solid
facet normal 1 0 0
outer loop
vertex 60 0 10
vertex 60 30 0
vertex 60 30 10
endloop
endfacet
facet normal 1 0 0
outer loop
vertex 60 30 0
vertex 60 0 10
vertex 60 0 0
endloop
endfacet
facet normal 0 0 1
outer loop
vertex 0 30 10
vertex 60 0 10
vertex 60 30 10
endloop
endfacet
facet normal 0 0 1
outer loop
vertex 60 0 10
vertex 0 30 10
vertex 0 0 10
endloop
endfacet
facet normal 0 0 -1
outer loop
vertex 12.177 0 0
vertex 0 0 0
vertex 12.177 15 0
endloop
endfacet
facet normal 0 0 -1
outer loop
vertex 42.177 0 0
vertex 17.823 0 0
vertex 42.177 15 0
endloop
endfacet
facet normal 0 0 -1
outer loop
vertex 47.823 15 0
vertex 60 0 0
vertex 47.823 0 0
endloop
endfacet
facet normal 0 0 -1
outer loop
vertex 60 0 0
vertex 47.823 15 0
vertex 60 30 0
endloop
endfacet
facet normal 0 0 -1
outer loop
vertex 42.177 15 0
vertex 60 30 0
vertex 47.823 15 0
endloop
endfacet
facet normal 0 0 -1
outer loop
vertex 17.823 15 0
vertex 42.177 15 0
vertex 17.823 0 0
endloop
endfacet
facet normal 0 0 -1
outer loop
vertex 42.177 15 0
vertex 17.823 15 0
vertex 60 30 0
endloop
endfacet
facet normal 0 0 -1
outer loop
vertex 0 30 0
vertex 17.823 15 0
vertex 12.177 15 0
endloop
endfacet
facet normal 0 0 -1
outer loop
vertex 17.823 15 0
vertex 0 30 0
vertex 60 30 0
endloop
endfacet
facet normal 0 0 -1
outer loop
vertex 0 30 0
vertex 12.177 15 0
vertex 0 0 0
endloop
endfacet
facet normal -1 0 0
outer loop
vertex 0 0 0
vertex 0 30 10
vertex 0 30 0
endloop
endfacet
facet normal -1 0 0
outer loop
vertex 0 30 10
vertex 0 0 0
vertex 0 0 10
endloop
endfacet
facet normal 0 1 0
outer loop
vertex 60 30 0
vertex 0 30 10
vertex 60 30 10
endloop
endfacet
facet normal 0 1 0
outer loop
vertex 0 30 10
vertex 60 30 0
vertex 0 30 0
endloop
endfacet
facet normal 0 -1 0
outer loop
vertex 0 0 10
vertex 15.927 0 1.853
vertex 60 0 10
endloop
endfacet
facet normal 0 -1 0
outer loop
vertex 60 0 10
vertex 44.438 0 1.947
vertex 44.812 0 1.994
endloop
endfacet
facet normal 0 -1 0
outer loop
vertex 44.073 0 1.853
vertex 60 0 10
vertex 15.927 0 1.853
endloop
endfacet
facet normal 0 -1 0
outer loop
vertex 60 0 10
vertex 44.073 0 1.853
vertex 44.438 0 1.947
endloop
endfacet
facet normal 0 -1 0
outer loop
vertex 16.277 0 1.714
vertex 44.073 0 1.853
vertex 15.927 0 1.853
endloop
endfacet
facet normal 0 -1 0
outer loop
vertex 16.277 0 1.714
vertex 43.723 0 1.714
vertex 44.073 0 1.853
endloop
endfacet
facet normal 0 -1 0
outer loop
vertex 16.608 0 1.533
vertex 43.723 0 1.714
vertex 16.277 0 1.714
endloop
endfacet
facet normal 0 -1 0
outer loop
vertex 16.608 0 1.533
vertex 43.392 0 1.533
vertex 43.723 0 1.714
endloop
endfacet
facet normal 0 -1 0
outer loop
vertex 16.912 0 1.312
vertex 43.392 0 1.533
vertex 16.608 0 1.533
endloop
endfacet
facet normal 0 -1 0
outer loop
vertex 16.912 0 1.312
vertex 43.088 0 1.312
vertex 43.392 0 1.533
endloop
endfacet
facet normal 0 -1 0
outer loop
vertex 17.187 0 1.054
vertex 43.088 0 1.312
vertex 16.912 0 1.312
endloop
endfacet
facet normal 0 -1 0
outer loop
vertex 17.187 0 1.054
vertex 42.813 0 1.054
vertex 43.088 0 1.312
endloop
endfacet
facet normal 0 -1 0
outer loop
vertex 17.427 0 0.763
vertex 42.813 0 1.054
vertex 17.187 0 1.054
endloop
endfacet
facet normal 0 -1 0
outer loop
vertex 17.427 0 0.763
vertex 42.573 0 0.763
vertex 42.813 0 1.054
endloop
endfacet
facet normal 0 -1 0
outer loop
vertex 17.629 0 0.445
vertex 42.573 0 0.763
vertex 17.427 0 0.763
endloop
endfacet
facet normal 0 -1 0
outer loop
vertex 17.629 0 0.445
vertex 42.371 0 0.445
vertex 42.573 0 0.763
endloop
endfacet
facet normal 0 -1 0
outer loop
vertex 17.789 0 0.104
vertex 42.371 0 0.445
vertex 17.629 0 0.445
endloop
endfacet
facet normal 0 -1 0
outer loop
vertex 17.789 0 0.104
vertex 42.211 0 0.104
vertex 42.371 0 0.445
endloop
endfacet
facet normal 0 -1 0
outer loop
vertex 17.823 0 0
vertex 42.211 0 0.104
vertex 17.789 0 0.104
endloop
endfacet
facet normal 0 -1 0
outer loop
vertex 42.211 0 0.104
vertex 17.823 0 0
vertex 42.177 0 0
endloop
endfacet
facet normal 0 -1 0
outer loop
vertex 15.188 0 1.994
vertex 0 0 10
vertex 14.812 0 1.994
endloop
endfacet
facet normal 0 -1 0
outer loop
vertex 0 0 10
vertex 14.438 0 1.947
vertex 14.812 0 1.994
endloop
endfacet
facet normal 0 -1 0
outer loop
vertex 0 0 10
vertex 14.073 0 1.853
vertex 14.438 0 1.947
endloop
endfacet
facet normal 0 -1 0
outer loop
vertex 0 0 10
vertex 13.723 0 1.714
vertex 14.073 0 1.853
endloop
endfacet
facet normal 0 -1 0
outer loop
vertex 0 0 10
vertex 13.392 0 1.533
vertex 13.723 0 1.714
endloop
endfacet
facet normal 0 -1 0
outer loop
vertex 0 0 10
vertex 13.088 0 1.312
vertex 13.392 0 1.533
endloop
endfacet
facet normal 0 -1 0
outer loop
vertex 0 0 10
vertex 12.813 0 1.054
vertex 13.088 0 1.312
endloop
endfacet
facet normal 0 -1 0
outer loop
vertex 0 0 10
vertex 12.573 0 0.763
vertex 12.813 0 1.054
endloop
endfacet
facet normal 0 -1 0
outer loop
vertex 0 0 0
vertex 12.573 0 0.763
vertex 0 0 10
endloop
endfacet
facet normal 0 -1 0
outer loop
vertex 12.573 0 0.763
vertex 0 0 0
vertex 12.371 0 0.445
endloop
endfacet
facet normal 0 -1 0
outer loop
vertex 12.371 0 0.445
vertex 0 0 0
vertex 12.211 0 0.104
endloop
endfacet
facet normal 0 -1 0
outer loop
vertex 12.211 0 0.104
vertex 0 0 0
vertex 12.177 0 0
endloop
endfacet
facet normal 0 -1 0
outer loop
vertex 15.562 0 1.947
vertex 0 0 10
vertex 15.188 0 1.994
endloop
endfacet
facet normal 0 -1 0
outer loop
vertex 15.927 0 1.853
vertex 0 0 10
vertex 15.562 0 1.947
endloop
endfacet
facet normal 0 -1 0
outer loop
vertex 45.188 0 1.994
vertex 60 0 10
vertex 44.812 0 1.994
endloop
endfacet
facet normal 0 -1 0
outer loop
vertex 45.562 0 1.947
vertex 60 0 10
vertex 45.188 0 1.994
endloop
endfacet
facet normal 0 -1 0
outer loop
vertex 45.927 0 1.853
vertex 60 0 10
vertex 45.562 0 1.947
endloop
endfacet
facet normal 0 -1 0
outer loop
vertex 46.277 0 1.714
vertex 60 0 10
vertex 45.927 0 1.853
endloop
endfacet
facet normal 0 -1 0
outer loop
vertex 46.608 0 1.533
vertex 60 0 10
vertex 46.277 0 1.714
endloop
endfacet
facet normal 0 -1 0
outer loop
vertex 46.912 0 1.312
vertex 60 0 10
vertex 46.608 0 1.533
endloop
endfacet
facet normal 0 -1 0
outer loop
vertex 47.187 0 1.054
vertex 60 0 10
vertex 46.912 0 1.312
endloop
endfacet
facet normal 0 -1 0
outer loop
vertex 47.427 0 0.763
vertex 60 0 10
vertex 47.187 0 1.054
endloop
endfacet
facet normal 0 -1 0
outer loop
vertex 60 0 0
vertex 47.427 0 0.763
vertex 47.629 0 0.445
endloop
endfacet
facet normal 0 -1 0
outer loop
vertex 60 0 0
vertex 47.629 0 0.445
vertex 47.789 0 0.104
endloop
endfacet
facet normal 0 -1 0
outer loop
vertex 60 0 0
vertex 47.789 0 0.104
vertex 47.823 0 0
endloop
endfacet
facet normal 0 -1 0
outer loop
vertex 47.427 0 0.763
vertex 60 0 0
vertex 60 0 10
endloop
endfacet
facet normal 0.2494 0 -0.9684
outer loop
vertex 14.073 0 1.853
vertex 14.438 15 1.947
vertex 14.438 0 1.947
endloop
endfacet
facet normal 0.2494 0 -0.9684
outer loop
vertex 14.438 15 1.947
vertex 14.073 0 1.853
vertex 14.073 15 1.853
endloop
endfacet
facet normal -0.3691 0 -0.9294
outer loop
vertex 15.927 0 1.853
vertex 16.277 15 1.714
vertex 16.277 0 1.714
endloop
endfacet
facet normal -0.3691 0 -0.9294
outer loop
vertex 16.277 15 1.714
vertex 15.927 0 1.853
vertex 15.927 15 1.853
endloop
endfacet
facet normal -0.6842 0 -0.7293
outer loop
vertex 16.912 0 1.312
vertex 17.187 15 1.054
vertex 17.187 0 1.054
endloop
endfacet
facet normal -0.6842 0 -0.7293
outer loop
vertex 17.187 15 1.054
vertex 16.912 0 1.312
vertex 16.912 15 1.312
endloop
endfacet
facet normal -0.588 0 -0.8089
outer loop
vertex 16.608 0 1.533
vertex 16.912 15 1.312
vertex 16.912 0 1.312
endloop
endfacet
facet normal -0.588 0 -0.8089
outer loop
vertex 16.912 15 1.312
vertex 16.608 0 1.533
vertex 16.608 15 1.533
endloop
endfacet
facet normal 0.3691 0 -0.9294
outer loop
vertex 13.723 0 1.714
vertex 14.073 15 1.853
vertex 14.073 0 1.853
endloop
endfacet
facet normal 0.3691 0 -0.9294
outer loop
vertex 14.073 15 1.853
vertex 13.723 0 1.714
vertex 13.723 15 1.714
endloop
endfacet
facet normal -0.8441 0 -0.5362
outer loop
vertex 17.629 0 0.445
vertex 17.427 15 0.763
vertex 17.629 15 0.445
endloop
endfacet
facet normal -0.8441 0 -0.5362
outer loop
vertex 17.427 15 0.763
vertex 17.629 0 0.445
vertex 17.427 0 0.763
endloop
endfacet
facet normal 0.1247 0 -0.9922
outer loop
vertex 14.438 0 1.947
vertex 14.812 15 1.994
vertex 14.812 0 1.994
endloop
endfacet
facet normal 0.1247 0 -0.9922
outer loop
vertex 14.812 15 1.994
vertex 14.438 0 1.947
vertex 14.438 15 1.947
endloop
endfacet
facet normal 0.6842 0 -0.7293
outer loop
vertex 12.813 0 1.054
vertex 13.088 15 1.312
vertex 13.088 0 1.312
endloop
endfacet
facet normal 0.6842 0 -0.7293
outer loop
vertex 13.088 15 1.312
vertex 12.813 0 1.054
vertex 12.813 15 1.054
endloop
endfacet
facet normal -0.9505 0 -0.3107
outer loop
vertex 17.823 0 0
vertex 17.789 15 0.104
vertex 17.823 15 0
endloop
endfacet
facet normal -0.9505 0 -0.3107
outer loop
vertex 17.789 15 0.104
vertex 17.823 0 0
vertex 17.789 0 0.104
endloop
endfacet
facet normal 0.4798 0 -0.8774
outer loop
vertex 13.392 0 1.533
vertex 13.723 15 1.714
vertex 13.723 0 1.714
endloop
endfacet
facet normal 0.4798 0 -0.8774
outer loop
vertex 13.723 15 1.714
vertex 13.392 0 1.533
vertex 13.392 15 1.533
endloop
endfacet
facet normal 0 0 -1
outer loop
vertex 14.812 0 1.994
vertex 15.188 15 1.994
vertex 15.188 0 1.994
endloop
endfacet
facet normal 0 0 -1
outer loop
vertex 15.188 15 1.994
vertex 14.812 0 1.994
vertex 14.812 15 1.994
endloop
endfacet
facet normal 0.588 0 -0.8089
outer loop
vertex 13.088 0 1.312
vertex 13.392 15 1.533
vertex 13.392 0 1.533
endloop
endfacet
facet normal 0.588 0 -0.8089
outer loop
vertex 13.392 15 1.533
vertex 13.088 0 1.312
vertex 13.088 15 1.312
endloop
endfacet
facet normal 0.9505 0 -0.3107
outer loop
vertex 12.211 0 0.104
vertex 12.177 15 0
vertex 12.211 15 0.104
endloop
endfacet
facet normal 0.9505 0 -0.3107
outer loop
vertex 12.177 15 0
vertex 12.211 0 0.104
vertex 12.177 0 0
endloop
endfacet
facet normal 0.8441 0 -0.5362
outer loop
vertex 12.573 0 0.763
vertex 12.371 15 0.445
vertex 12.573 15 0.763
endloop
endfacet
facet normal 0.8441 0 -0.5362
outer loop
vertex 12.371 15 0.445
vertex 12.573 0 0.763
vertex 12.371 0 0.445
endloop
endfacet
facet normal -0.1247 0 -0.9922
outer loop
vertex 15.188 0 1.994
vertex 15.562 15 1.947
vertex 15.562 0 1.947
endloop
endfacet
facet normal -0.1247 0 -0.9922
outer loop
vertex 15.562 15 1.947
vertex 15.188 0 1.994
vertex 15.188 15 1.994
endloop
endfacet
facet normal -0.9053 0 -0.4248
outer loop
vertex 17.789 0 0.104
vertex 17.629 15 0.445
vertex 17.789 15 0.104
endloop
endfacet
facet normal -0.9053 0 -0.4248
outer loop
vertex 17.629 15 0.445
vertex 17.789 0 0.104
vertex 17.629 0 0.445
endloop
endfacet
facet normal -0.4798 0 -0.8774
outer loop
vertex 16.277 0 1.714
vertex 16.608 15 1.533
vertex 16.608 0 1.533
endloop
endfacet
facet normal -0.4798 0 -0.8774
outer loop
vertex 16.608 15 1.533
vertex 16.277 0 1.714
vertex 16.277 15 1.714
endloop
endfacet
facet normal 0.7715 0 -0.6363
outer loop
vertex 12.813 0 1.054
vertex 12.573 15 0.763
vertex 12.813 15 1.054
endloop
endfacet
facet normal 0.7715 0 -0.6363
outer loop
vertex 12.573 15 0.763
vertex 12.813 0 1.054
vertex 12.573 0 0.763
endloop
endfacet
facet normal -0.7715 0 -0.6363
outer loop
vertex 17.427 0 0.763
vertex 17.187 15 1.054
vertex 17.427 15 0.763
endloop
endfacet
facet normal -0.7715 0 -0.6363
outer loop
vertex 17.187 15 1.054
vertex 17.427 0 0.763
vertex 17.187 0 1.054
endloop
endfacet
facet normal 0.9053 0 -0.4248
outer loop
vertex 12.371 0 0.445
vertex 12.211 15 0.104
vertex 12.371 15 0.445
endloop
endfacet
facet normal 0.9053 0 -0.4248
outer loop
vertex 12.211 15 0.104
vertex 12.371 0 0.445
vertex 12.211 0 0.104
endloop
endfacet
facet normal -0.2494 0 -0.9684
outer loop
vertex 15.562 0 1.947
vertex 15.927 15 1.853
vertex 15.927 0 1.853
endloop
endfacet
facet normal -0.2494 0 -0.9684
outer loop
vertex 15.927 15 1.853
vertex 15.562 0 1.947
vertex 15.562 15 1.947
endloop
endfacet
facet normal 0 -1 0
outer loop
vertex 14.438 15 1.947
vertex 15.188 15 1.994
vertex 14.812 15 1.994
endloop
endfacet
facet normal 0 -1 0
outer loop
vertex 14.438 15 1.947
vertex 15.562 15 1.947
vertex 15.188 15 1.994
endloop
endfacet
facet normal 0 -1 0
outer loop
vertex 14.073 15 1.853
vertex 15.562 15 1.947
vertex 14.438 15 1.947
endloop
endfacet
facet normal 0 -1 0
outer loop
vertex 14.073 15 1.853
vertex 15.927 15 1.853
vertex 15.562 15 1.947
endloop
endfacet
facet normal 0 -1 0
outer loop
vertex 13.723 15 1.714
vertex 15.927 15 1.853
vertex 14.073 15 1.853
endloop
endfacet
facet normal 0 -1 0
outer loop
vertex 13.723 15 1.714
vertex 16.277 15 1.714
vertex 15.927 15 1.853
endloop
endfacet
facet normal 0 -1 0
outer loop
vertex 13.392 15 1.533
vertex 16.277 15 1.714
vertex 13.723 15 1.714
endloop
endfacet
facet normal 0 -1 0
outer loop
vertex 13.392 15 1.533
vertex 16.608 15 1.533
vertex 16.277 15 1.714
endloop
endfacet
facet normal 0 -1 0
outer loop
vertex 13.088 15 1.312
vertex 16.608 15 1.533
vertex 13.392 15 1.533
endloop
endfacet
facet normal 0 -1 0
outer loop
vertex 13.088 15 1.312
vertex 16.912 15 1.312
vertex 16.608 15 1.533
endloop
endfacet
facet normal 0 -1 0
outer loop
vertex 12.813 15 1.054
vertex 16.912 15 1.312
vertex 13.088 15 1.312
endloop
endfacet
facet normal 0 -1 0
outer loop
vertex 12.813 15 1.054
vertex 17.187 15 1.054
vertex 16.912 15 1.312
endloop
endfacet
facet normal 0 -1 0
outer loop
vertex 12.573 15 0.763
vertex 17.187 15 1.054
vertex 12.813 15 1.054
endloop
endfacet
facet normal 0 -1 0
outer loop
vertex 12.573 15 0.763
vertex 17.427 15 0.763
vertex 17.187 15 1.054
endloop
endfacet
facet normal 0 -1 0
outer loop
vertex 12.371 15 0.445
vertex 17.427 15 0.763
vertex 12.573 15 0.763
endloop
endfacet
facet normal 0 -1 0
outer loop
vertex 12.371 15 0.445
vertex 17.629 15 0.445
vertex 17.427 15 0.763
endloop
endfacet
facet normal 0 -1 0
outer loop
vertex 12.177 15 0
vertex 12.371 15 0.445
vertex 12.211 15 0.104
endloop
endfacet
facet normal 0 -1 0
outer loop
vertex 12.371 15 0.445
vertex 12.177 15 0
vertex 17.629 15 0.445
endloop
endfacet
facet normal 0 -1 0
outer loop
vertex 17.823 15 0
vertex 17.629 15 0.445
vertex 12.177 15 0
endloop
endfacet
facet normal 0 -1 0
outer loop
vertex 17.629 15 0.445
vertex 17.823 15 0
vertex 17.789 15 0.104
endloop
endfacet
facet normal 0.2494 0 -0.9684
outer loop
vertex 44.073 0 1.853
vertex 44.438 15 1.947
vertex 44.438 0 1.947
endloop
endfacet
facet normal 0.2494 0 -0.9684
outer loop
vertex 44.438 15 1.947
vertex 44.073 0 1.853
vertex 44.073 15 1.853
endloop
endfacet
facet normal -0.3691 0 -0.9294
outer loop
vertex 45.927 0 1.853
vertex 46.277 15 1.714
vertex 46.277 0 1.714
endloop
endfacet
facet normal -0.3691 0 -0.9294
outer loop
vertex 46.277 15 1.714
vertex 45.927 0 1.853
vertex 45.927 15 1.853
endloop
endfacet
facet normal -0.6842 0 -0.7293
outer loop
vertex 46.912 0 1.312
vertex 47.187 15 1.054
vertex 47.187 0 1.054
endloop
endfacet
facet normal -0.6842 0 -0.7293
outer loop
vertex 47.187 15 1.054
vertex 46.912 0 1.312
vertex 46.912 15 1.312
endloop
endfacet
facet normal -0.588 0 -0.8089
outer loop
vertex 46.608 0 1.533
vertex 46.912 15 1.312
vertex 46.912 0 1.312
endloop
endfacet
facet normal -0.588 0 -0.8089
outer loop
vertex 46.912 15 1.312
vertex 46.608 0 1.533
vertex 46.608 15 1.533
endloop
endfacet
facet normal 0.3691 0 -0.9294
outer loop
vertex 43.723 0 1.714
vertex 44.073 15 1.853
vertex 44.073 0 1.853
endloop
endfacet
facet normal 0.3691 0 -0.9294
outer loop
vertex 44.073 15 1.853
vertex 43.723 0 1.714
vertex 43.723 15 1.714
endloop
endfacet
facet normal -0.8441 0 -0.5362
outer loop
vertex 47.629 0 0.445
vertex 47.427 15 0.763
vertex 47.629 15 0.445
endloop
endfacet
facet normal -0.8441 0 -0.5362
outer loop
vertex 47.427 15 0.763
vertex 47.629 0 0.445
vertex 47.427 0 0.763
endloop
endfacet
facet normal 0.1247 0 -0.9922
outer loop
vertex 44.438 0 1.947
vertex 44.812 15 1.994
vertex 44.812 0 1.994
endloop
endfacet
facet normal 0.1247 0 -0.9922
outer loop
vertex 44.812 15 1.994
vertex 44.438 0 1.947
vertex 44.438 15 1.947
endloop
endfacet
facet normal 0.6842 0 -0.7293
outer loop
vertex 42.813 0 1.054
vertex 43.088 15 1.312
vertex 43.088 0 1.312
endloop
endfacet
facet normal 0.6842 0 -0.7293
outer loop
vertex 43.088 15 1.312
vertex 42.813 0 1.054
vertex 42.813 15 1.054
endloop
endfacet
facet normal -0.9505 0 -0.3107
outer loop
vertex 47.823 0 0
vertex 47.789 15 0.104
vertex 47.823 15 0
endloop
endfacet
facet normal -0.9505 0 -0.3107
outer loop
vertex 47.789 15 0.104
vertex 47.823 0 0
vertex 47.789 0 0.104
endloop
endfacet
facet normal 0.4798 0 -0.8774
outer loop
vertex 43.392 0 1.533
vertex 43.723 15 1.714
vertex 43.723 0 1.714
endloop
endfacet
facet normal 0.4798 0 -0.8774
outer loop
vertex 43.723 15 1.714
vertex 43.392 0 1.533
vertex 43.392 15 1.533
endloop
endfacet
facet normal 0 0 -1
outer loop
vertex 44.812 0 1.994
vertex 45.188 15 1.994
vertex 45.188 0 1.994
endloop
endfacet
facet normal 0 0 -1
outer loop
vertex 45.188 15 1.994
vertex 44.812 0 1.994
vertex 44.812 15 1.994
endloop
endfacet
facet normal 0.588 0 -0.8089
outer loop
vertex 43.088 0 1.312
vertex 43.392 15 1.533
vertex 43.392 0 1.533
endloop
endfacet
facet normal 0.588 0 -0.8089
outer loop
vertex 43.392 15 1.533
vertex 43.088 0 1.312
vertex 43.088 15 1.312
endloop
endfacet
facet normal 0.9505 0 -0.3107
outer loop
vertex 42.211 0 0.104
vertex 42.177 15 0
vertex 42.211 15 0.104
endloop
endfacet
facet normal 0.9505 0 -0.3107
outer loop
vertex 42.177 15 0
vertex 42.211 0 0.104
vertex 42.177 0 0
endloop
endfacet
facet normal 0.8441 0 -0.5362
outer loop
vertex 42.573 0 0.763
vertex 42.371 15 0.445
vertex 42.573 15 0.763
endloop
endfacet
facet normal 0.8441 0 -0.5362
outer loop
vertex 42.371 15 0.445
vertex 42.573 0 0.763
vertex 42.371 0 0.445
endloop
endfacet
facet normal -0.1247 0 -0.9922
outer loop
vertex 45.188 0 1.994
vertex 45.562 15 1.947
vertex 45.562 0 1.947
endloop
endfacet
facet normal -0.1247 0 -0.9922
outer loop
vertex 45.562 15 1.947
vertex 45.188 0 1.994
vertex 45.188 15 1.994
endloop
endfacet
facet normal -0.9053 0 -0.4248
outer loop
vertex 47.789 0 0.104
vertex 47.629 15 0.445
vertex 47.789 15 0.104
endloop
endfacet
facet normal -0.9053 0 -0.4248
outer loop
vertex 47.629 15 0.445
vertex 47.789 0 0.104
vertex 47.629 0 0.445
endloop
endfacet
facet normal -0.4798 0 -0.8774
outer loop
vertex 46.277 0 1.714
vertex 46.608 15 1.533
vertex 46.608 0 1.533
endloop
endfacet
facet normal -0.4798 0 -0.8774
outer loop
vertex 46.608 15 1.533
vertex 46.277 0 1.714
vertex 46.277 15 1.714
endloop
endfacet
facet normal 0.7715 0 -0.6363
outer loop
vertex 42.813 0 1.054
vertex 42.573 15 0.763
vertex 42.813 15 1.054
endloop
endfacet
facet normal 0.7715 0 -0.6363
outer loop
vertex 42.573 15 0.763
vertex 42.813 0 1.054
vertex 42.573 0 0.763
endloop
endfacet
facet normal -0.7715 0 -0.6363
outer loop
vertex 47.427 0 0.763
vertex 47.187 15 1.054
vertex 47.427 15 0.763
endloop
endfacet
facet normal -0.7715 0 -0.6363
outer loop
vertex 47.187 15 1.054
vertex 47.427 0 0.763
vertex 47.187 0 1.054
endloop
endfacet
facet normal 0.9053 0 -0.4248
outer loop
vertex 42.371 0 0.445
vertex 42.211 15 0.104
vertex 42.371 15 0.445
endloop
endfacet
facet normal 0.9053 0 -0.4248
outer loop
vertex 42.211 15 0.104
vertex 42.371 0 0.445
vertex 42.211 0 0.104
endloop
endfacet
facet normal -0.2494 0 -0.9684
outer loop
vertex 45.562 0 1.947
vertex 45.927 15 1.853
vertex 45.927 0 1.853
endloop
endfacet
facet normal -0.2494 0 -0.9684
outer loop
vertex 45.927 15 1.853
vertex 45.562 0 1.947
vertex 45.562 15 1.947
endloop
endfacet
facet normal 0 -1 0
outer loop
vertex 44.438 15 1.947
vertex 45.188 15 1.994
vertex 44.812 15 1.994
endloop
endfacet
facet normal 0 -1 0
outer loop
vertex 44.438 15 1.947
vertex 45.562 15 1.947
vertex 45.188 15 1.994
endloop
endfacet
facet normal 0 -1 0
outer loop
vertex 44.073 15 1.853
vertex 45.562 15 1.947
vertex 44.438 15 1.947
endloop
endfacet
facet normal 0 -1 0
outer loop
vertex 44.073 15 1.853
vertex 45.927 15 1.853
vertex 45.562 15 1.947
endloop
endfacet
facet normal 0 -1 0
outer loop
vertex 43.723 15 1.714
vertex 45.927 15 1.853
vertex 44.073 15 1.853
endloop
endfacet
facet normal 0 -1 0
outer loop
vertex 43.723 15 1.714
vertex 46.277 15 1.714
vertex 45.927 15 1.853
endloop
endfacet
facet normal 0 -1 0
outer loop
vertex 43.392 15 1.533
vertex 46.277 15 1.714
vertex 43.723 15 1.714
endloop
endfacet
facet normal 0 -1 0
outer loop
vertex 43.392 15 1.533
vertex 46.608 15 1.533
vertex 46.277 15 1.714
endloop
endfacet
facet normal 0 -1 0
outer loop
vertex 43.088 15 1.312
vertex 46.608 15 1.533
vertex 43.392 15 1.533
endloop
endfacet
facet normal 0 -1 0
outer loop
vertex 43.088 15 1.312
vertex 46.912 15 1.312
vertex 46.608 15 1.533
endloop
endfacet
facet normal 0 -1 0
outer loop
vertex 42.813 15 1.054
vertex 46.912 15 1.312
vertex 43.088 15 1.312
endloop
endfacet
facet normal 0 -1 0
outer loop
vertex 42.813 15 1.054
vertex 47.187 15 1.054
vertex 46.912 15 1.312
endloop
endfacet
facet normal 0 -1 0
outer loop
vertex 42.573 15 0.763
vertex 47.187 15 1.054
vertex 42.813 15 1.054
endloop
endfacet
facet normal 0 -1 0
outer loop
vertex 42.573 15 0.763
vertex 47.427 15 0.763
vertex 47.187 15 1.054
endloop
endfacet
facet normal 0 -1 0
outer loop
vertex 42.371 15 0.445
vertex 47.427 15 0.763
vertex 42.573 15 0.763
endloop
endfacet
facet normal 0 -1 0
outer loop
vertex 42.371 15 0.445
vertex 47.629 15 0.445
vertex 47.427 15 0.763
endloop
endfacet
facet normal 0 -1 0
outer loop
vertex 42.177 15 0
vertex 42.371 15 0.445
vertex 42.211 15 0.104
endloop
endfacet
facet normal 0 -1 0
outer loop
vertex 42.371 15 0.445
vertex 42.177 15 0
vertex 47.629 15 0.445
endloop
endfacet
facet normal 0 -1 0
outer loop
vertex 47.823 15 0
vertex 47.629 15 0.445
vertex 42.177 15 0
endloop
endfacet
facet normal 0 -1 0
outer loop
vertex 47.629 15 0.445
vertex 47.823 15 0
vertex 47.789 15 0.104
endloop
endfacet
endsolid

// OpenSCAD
// Parameters
block_length = 60;
block_height = 30;
block_thickness = 10;
hole_diameter = 6;
hole_radius = hole_diameter / 2;
hole_offset_x = 15; // distance from each end
hole_center_y = block_height / 2;

// Main block
difference() {
    // Solid block
    cube([block_length, block_height, block_thickness], center=false);

    // Holes
    translate([hole_offset_x, hole_center_y, -1])
        rotate([90, 0, 0])
            cylinder(h=block_height + 2, r=hole_radius, $fn=50);

    translate([block_length - hole_offset_x, hole_center_y, -1])
        rotate([90, 0, 0])
            cylinder(h=block_height + 2, r=hole_radius, $fn=50);
}
